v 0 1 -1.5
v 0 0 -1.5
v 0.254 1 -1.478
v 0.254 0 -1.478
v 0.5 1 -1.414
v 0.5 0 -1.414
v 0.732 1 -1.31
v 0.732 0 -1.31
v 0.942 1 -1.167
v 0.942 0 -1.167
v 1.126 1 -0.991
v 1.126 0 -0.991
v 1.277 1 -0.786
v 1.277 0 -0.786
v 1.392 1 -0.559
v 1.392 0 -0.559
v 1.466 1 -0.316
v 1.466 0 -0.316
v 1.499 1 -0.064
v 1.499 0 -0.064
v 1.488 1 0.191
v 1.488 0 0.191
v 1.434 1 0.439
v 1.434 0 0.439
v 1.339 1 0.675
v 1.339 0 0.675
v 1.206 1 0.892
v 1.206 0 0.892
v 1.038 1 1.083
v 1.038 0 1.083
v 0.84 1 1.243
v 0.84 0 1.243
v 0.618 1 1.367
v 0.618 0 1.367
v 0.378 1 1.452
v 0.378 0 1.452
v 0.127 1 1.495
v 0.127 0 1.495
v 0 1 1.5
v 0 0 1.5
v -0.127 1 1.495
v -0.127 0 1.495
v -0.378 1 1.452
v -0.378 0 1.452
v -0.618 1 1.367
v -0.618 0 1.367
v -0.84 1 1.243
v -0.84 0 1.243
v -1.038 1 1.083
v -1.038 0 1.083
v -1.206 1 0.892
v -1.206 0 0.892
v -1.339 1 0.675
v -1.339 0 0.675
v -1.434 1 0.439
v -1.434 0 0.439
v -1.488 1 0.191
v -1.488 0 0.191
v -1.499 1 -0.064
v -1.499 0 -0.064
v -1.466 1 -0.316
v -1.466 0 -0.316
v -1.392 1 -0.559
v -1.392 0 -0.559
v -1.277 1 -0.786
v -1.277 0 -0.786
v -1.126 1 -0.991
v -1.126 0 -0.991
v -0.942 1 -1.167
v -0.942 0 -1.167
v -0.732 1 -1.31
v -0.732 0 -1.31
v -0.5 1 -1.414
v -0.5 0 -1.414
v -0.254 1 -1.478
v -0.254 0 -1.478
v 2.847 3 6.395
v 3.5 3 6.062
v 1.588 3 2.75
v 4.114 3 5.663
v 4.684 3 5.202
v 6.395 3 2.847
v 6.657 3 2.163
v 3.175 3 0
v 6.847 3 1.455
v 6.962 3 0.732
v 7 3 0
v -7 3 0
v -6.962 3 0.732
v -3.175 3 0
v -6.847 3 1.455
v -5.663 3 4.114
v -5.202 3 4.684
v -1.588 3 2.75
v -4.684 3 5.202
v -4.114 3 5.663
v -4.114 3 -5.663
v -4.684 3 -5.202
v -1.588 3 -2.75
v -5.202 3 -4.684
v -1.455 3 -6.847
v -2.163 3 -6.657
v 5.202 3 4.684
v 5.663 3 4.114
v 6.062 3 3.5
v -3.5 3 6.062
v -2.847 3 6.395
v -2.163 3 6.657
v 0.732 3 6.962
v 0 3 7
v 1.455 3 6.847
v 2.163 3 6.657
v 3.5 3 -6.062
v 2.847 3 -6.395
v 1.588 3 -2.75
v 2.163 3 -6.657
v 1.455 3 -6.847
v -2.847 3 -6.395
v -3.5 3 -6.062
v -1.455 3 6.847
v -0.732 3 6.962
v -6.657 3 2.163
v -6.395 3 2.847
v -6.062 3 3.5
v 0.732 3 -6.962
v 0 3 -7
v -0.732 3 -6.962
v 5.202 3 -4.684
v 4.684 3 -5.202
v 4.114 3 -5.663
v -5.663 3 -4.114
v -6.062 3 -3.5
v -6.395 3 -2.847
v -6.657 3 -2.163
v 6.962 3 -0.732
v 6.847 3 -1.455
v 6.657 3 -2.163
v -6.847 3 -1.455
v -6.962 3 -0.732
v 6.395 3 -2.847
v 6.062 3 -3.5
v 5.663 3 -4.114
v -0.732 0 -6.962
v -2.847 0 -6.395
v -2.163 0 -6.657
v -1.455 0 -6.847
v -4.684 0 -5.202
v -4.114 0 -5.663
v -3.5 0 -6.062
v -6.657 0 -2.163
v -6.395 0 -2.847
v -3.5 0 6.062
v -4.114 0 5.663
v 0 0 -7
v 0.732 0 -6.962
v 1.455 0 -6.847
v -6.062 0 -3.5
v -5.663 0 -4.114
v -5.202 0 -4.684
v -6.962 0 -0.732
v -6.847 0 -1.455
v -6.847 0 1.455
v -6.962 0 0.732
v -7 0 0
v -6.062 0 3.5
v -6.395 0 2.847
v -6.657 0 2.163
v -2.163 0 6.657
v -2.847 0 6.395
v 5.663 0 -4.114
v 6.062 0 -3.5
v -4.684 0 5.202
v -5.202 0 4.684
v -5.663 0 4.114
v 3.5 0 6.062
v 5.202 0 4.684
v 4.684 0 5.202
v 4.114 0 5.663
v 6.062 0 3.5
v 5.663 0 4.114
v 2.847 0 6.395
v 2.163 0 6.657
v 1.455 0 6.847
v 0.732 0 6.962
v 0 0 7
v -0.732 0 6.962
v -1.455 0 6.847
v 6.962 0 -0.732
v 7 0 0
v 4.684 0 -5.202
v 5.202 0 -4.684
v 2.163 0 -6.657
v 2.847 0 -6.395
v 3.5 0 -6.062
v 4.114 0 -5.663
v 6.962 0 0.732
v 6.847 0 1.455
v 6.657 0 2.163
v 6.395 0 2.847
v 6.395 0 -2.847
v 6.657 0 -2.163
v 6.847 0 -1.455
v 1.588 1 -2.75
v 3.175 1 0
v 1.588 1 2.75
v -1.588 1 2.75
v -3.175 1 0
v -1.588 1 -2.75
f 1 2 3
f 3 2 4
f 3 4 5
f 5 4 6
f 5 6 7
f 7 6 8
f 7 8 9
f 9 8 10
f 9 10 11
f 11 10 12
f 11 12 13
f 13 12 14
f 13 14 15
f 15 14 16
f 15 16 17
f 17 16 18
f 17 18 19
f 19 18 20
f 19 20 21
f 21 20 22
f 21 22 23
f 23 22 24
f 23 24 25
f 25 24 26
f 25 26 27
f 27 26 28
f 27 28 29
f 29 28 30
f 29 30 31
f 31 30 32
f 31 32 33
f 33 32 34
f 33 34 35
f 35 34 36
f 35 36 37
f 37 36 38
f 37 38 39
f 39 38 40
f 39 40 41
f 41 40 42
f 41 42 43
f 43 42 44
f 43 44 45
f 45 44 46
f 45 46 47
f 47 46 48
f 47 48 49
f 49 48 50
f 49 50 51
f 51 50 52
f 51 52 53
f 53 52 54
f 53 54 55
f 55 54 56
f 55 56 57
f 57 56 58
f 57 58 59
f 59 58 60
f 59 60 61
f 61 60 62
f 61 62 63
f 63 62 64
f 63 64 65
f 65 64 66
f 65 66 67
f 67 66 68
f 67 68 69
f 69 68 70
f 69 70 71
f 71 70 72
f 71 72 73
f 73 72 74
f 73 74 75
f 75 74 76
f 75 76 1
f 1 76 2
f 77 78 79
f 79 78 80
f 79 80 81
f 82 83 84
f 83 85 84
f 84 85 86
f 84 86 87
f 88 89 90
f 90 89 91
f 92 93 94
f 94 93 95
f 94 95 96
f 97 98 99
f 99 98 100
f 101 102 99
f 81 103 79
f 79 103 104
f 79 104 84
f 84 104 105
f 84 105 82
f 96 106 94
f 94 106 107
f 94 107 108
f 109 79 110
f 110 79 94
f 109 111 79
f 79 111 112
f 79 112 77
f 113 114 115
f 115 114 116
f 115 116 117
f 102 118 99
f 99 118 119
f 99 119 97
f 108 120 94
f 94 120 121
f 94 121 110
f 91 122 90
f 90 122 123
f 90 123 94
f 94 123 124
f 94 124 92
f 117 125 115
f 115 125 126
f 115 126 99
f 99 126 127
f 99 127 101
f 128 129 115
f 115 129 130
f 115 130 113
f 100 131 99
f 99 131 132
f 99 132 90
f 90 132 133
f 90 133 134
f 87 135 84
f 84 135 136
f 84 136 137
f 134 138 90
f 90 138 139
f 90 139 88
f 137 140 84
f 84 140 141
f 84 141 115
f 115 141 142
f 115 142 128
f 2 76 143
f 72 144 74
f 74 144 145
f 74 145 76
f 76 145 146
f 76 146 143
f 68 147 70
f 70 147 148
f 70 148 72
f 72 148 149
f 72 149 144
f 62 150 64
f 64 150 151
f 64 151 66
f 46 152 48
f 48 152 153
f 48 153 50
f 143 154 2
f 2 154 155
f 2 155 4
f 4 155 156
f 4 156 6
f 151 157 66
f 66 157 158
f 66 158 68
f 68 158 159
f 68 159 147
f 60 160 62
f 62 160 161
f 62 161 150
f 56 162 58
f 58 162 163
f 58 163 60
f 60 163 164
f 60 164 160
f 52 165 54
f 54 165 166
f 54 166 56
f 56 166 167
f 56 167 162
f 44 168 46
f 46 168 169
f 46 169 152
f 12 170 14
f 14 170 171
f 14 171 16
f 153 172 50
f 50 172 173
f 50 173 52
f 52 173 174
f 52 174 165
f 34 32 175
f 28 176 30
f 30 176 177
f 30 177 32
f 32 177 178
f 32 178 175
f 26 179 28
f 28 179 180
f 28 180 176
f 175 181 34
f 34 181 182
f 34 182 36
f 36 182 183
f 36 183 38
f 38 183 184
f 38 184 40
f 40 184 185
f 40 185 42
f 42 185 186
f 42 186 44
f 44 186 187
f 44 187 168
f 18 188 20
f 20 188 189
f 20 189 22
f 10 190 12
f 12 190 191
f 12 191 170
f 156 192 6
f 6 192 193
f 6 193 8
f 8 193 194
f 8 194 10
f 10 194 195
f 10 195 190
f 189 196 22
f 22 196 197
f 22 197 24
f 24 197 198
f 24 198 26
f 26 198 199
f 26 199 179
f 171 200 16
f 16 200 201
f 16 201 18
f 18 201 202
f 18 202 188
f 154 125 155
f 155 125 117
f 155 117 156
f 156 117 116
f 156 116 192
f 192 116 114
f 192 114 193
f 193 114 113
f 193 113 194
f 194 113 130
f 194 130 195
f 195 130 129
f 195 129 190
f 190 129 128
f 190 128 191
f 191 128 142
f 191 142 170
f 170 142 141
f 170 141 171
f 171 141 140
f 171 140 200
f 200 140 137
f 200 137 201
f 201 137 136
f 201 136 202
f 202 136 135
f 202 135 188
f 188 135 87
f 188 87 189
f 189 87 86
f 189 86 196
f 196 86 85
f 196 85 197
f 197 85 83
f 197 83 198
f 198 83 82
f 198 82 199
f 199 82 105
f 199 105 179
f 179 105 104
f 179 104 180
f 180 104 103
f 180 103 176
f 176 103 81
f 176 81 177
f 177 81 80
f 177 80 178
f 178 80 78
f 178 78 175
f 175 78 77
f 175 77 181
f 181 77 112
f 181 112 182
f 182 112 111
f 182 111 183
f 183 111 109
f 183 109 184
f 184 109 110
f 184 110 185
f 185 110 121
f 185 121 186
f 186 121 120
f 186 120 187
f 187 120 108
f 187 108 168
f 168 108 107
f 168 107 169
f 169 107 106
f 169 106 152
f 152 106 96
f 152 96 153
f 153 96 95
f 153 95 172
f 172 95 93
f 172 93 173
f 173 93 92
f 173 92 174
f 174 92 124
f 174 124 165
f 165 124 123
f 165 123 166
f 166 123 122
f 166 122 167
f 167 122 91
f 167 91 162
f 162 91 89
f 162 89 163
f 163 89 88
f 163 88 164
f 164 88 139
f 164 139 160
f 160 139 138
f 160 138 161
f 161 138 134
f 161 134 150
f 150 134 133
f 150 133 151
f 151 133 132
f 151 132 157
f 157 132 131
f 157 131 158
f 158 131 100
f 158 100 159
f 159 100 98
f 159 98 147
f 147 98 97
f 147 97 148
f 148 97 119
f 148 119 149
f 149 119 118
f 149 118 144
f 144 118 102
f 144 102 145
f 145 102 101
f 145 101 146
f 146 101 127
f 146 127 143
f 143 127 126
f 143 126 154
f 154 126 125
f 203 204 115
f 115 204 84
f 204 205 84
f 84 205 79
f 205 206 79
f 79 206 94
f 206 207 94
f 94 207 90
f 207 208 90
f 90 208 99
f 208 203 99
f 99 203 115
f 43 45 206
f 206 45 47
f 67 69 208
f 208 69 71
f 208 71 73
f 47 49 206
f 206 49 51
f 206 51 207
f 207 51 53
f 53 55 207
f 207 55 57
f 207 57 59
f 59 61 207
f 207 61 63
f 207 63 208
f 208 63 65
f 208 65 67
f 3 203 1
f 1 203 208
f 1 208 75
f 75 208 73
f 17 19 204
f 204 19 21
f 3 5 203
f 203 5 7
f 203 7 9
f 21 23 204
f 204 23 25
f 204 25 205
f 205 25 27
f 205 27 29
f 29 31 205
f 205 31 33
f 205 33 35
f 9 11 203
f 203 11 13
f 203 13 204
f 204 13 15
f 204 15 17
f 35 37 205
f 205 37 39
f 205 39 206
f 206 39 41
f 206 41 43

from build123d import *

# Parameters (mm, degrees)
SKETCH_1_R          = 7
SKETCH_1_R_2        = 1.5
EXTRUDE_1_DEPTH     = 3
CUT_EXTRUDE_1_DEPTH = 2


with BuildPart() as part:
    # Эскиз1 → Бобышка-Вытянуть1 (new body)
    with BuildSketch(Plane(origin=(0, 0, 0), x_dir=(1, 0, 0), z_dir=(0, 1, 0))):
        with Locations(Location((0, 0, 0), (0, 0, 270))):
            Circle(SKETCH_1_R)
        with Locations(Location((0, 0, 0), (0, 0, 270))):
            Circle(SKETCH_1_R_2, mode=Mode.SUBTRACT)
    extrude(amount=EXTRUDE_1_DEPTH)

    # Эскиз2 → Вырез-Вытянуть1 (cut)
    with BuildSketch(Plane(origin=(0, 3, 0), x_dir=(1, 0, 0), z_dir=(0, 1, 0))):
        Polygon((1.58771324, 2.75), (-1.58771324, 2.75), (-3.175426481, 0), (-1.58771324, -2.75), (1.58771324, -2.75), (3.175426481, 0), align=None)
    extrude(amount=-CUT_EXTRUDE_1_DEPTH, mode=Mode.SUBTRACT)


solid = part.part
